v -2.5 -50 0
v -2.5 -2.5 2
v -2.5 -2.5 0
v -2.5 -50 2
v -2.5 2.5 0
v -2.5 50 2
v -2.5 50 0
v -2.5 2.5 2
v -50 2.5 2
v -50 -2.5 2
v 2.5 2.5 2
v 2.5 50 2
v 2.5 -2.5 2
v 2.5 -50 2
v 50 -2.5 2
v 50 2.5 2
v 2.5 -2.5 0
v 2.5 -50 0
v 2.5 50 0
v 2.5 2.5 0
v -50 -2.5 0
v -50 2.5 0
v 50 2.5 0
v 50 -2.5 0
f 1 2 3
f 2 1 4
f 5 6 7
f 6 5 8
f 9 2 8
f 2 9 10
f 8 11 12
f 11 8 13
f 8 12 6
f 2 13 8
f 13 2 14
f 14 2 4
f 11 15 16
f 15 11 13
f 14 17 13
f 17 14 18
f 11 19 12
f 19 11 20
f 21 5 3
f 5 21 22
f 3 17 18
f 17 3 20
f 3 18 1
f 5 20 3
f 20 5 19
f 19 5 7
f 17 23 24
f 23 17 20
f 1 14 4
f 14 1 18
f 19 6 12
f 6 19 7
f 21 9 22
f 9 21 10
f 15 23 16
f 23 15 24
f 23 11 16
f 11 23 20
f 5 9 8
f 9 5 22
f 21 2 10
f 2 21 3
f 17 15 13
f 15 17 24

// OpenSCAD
translate([-2.5, -50, 0])
cube([5, 100, 2]);

translate([-50, -2.5, 0])
cube([100,5, 2]);
